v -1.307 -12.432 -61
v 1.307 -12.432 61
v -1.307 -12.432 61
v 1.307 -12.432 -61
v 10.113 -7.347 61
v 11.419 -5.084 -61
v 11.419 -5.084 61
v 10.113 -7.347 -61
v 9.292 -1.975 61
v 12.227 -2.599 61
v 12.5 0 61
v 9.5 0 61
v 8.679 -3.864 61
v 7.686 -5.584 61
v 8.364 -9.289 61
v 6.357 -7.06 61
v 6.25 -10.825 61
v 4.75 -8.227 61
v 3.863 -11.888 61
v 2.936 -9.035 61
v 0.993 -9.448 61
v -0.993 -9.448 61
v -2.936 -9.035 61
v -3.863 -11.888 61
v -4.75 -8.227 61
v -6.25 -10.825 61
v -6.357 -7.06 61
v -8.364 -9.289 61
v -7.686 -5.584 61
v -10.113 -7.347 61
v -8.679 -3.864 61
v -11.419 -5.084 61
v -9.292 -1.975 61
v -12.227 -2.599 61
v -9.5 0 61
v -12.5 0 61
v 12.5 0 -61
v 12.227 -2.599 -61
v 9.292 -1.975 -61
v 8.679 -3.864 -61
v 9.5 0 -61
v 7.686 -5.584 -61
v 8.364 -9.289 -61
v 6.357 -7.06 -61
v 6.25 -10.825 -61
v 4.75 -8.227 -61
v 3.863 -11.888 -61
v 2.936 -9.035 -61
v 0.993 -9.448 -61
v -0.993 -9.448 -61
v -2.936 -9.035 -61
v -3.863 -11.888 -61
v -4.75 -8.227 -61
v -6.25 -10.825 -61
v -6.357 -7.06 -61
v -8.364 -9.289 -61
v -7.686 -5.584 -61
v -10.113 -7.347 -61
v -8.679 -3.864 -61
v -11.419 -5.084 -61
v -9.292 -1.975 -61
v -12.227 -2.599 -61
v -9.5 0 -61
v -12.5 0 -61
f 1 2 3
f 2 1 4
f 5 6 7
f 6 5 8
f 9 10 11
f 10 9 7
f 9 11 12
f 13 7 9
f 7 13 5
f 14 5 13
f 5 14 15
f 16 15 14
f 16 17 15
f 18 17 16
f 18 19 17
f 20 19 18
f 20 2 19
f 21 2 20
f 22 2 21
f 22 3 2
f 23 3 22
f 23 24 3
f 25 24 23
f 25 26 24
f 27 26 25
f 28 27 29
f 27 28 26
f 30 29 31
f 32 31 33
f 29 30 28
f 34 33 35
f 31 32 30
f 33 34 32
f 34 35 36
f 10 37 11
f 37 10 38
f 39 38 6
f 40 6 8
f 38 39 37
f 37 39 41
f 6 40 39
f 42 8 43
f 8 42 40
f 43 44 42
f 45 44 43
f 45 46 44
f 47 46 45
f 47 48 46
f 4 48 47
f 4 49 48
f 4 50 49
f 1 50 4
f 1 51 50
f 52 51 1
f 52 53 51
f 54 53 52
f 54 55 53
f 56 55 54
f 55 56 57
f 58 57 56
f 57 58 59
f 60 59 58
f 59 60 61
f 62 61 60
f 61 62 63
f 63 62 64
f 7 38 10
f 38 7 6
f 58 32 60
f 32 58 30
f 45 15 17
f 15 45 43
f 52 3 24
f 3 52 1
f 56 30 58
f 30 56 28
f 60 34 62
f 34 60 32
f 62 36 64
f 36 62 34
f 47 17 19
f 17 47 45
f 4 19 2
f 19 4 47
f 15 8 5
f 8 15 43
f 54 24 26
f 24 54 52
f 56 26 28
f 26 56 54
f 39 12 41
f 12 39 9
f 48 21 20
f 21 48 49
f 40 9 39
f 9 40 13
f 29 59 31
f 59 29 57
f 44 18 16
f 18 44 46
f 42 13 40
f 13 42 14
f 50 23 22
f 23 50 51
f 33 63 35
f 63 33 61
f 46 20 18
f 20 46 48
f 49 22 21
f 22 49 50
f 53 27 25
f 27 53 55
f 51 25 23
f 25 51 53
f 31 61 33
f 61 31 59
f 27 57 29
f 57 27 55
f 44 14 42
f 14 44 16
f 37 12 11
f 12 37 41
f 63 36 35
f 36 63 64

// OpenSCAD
difference(){
difference(){
cylinder(h=122,d=25,center=true);
cylinder(h=124,d=19,center=true);
}

translate([-50,0,-150])
cube(300);
}
